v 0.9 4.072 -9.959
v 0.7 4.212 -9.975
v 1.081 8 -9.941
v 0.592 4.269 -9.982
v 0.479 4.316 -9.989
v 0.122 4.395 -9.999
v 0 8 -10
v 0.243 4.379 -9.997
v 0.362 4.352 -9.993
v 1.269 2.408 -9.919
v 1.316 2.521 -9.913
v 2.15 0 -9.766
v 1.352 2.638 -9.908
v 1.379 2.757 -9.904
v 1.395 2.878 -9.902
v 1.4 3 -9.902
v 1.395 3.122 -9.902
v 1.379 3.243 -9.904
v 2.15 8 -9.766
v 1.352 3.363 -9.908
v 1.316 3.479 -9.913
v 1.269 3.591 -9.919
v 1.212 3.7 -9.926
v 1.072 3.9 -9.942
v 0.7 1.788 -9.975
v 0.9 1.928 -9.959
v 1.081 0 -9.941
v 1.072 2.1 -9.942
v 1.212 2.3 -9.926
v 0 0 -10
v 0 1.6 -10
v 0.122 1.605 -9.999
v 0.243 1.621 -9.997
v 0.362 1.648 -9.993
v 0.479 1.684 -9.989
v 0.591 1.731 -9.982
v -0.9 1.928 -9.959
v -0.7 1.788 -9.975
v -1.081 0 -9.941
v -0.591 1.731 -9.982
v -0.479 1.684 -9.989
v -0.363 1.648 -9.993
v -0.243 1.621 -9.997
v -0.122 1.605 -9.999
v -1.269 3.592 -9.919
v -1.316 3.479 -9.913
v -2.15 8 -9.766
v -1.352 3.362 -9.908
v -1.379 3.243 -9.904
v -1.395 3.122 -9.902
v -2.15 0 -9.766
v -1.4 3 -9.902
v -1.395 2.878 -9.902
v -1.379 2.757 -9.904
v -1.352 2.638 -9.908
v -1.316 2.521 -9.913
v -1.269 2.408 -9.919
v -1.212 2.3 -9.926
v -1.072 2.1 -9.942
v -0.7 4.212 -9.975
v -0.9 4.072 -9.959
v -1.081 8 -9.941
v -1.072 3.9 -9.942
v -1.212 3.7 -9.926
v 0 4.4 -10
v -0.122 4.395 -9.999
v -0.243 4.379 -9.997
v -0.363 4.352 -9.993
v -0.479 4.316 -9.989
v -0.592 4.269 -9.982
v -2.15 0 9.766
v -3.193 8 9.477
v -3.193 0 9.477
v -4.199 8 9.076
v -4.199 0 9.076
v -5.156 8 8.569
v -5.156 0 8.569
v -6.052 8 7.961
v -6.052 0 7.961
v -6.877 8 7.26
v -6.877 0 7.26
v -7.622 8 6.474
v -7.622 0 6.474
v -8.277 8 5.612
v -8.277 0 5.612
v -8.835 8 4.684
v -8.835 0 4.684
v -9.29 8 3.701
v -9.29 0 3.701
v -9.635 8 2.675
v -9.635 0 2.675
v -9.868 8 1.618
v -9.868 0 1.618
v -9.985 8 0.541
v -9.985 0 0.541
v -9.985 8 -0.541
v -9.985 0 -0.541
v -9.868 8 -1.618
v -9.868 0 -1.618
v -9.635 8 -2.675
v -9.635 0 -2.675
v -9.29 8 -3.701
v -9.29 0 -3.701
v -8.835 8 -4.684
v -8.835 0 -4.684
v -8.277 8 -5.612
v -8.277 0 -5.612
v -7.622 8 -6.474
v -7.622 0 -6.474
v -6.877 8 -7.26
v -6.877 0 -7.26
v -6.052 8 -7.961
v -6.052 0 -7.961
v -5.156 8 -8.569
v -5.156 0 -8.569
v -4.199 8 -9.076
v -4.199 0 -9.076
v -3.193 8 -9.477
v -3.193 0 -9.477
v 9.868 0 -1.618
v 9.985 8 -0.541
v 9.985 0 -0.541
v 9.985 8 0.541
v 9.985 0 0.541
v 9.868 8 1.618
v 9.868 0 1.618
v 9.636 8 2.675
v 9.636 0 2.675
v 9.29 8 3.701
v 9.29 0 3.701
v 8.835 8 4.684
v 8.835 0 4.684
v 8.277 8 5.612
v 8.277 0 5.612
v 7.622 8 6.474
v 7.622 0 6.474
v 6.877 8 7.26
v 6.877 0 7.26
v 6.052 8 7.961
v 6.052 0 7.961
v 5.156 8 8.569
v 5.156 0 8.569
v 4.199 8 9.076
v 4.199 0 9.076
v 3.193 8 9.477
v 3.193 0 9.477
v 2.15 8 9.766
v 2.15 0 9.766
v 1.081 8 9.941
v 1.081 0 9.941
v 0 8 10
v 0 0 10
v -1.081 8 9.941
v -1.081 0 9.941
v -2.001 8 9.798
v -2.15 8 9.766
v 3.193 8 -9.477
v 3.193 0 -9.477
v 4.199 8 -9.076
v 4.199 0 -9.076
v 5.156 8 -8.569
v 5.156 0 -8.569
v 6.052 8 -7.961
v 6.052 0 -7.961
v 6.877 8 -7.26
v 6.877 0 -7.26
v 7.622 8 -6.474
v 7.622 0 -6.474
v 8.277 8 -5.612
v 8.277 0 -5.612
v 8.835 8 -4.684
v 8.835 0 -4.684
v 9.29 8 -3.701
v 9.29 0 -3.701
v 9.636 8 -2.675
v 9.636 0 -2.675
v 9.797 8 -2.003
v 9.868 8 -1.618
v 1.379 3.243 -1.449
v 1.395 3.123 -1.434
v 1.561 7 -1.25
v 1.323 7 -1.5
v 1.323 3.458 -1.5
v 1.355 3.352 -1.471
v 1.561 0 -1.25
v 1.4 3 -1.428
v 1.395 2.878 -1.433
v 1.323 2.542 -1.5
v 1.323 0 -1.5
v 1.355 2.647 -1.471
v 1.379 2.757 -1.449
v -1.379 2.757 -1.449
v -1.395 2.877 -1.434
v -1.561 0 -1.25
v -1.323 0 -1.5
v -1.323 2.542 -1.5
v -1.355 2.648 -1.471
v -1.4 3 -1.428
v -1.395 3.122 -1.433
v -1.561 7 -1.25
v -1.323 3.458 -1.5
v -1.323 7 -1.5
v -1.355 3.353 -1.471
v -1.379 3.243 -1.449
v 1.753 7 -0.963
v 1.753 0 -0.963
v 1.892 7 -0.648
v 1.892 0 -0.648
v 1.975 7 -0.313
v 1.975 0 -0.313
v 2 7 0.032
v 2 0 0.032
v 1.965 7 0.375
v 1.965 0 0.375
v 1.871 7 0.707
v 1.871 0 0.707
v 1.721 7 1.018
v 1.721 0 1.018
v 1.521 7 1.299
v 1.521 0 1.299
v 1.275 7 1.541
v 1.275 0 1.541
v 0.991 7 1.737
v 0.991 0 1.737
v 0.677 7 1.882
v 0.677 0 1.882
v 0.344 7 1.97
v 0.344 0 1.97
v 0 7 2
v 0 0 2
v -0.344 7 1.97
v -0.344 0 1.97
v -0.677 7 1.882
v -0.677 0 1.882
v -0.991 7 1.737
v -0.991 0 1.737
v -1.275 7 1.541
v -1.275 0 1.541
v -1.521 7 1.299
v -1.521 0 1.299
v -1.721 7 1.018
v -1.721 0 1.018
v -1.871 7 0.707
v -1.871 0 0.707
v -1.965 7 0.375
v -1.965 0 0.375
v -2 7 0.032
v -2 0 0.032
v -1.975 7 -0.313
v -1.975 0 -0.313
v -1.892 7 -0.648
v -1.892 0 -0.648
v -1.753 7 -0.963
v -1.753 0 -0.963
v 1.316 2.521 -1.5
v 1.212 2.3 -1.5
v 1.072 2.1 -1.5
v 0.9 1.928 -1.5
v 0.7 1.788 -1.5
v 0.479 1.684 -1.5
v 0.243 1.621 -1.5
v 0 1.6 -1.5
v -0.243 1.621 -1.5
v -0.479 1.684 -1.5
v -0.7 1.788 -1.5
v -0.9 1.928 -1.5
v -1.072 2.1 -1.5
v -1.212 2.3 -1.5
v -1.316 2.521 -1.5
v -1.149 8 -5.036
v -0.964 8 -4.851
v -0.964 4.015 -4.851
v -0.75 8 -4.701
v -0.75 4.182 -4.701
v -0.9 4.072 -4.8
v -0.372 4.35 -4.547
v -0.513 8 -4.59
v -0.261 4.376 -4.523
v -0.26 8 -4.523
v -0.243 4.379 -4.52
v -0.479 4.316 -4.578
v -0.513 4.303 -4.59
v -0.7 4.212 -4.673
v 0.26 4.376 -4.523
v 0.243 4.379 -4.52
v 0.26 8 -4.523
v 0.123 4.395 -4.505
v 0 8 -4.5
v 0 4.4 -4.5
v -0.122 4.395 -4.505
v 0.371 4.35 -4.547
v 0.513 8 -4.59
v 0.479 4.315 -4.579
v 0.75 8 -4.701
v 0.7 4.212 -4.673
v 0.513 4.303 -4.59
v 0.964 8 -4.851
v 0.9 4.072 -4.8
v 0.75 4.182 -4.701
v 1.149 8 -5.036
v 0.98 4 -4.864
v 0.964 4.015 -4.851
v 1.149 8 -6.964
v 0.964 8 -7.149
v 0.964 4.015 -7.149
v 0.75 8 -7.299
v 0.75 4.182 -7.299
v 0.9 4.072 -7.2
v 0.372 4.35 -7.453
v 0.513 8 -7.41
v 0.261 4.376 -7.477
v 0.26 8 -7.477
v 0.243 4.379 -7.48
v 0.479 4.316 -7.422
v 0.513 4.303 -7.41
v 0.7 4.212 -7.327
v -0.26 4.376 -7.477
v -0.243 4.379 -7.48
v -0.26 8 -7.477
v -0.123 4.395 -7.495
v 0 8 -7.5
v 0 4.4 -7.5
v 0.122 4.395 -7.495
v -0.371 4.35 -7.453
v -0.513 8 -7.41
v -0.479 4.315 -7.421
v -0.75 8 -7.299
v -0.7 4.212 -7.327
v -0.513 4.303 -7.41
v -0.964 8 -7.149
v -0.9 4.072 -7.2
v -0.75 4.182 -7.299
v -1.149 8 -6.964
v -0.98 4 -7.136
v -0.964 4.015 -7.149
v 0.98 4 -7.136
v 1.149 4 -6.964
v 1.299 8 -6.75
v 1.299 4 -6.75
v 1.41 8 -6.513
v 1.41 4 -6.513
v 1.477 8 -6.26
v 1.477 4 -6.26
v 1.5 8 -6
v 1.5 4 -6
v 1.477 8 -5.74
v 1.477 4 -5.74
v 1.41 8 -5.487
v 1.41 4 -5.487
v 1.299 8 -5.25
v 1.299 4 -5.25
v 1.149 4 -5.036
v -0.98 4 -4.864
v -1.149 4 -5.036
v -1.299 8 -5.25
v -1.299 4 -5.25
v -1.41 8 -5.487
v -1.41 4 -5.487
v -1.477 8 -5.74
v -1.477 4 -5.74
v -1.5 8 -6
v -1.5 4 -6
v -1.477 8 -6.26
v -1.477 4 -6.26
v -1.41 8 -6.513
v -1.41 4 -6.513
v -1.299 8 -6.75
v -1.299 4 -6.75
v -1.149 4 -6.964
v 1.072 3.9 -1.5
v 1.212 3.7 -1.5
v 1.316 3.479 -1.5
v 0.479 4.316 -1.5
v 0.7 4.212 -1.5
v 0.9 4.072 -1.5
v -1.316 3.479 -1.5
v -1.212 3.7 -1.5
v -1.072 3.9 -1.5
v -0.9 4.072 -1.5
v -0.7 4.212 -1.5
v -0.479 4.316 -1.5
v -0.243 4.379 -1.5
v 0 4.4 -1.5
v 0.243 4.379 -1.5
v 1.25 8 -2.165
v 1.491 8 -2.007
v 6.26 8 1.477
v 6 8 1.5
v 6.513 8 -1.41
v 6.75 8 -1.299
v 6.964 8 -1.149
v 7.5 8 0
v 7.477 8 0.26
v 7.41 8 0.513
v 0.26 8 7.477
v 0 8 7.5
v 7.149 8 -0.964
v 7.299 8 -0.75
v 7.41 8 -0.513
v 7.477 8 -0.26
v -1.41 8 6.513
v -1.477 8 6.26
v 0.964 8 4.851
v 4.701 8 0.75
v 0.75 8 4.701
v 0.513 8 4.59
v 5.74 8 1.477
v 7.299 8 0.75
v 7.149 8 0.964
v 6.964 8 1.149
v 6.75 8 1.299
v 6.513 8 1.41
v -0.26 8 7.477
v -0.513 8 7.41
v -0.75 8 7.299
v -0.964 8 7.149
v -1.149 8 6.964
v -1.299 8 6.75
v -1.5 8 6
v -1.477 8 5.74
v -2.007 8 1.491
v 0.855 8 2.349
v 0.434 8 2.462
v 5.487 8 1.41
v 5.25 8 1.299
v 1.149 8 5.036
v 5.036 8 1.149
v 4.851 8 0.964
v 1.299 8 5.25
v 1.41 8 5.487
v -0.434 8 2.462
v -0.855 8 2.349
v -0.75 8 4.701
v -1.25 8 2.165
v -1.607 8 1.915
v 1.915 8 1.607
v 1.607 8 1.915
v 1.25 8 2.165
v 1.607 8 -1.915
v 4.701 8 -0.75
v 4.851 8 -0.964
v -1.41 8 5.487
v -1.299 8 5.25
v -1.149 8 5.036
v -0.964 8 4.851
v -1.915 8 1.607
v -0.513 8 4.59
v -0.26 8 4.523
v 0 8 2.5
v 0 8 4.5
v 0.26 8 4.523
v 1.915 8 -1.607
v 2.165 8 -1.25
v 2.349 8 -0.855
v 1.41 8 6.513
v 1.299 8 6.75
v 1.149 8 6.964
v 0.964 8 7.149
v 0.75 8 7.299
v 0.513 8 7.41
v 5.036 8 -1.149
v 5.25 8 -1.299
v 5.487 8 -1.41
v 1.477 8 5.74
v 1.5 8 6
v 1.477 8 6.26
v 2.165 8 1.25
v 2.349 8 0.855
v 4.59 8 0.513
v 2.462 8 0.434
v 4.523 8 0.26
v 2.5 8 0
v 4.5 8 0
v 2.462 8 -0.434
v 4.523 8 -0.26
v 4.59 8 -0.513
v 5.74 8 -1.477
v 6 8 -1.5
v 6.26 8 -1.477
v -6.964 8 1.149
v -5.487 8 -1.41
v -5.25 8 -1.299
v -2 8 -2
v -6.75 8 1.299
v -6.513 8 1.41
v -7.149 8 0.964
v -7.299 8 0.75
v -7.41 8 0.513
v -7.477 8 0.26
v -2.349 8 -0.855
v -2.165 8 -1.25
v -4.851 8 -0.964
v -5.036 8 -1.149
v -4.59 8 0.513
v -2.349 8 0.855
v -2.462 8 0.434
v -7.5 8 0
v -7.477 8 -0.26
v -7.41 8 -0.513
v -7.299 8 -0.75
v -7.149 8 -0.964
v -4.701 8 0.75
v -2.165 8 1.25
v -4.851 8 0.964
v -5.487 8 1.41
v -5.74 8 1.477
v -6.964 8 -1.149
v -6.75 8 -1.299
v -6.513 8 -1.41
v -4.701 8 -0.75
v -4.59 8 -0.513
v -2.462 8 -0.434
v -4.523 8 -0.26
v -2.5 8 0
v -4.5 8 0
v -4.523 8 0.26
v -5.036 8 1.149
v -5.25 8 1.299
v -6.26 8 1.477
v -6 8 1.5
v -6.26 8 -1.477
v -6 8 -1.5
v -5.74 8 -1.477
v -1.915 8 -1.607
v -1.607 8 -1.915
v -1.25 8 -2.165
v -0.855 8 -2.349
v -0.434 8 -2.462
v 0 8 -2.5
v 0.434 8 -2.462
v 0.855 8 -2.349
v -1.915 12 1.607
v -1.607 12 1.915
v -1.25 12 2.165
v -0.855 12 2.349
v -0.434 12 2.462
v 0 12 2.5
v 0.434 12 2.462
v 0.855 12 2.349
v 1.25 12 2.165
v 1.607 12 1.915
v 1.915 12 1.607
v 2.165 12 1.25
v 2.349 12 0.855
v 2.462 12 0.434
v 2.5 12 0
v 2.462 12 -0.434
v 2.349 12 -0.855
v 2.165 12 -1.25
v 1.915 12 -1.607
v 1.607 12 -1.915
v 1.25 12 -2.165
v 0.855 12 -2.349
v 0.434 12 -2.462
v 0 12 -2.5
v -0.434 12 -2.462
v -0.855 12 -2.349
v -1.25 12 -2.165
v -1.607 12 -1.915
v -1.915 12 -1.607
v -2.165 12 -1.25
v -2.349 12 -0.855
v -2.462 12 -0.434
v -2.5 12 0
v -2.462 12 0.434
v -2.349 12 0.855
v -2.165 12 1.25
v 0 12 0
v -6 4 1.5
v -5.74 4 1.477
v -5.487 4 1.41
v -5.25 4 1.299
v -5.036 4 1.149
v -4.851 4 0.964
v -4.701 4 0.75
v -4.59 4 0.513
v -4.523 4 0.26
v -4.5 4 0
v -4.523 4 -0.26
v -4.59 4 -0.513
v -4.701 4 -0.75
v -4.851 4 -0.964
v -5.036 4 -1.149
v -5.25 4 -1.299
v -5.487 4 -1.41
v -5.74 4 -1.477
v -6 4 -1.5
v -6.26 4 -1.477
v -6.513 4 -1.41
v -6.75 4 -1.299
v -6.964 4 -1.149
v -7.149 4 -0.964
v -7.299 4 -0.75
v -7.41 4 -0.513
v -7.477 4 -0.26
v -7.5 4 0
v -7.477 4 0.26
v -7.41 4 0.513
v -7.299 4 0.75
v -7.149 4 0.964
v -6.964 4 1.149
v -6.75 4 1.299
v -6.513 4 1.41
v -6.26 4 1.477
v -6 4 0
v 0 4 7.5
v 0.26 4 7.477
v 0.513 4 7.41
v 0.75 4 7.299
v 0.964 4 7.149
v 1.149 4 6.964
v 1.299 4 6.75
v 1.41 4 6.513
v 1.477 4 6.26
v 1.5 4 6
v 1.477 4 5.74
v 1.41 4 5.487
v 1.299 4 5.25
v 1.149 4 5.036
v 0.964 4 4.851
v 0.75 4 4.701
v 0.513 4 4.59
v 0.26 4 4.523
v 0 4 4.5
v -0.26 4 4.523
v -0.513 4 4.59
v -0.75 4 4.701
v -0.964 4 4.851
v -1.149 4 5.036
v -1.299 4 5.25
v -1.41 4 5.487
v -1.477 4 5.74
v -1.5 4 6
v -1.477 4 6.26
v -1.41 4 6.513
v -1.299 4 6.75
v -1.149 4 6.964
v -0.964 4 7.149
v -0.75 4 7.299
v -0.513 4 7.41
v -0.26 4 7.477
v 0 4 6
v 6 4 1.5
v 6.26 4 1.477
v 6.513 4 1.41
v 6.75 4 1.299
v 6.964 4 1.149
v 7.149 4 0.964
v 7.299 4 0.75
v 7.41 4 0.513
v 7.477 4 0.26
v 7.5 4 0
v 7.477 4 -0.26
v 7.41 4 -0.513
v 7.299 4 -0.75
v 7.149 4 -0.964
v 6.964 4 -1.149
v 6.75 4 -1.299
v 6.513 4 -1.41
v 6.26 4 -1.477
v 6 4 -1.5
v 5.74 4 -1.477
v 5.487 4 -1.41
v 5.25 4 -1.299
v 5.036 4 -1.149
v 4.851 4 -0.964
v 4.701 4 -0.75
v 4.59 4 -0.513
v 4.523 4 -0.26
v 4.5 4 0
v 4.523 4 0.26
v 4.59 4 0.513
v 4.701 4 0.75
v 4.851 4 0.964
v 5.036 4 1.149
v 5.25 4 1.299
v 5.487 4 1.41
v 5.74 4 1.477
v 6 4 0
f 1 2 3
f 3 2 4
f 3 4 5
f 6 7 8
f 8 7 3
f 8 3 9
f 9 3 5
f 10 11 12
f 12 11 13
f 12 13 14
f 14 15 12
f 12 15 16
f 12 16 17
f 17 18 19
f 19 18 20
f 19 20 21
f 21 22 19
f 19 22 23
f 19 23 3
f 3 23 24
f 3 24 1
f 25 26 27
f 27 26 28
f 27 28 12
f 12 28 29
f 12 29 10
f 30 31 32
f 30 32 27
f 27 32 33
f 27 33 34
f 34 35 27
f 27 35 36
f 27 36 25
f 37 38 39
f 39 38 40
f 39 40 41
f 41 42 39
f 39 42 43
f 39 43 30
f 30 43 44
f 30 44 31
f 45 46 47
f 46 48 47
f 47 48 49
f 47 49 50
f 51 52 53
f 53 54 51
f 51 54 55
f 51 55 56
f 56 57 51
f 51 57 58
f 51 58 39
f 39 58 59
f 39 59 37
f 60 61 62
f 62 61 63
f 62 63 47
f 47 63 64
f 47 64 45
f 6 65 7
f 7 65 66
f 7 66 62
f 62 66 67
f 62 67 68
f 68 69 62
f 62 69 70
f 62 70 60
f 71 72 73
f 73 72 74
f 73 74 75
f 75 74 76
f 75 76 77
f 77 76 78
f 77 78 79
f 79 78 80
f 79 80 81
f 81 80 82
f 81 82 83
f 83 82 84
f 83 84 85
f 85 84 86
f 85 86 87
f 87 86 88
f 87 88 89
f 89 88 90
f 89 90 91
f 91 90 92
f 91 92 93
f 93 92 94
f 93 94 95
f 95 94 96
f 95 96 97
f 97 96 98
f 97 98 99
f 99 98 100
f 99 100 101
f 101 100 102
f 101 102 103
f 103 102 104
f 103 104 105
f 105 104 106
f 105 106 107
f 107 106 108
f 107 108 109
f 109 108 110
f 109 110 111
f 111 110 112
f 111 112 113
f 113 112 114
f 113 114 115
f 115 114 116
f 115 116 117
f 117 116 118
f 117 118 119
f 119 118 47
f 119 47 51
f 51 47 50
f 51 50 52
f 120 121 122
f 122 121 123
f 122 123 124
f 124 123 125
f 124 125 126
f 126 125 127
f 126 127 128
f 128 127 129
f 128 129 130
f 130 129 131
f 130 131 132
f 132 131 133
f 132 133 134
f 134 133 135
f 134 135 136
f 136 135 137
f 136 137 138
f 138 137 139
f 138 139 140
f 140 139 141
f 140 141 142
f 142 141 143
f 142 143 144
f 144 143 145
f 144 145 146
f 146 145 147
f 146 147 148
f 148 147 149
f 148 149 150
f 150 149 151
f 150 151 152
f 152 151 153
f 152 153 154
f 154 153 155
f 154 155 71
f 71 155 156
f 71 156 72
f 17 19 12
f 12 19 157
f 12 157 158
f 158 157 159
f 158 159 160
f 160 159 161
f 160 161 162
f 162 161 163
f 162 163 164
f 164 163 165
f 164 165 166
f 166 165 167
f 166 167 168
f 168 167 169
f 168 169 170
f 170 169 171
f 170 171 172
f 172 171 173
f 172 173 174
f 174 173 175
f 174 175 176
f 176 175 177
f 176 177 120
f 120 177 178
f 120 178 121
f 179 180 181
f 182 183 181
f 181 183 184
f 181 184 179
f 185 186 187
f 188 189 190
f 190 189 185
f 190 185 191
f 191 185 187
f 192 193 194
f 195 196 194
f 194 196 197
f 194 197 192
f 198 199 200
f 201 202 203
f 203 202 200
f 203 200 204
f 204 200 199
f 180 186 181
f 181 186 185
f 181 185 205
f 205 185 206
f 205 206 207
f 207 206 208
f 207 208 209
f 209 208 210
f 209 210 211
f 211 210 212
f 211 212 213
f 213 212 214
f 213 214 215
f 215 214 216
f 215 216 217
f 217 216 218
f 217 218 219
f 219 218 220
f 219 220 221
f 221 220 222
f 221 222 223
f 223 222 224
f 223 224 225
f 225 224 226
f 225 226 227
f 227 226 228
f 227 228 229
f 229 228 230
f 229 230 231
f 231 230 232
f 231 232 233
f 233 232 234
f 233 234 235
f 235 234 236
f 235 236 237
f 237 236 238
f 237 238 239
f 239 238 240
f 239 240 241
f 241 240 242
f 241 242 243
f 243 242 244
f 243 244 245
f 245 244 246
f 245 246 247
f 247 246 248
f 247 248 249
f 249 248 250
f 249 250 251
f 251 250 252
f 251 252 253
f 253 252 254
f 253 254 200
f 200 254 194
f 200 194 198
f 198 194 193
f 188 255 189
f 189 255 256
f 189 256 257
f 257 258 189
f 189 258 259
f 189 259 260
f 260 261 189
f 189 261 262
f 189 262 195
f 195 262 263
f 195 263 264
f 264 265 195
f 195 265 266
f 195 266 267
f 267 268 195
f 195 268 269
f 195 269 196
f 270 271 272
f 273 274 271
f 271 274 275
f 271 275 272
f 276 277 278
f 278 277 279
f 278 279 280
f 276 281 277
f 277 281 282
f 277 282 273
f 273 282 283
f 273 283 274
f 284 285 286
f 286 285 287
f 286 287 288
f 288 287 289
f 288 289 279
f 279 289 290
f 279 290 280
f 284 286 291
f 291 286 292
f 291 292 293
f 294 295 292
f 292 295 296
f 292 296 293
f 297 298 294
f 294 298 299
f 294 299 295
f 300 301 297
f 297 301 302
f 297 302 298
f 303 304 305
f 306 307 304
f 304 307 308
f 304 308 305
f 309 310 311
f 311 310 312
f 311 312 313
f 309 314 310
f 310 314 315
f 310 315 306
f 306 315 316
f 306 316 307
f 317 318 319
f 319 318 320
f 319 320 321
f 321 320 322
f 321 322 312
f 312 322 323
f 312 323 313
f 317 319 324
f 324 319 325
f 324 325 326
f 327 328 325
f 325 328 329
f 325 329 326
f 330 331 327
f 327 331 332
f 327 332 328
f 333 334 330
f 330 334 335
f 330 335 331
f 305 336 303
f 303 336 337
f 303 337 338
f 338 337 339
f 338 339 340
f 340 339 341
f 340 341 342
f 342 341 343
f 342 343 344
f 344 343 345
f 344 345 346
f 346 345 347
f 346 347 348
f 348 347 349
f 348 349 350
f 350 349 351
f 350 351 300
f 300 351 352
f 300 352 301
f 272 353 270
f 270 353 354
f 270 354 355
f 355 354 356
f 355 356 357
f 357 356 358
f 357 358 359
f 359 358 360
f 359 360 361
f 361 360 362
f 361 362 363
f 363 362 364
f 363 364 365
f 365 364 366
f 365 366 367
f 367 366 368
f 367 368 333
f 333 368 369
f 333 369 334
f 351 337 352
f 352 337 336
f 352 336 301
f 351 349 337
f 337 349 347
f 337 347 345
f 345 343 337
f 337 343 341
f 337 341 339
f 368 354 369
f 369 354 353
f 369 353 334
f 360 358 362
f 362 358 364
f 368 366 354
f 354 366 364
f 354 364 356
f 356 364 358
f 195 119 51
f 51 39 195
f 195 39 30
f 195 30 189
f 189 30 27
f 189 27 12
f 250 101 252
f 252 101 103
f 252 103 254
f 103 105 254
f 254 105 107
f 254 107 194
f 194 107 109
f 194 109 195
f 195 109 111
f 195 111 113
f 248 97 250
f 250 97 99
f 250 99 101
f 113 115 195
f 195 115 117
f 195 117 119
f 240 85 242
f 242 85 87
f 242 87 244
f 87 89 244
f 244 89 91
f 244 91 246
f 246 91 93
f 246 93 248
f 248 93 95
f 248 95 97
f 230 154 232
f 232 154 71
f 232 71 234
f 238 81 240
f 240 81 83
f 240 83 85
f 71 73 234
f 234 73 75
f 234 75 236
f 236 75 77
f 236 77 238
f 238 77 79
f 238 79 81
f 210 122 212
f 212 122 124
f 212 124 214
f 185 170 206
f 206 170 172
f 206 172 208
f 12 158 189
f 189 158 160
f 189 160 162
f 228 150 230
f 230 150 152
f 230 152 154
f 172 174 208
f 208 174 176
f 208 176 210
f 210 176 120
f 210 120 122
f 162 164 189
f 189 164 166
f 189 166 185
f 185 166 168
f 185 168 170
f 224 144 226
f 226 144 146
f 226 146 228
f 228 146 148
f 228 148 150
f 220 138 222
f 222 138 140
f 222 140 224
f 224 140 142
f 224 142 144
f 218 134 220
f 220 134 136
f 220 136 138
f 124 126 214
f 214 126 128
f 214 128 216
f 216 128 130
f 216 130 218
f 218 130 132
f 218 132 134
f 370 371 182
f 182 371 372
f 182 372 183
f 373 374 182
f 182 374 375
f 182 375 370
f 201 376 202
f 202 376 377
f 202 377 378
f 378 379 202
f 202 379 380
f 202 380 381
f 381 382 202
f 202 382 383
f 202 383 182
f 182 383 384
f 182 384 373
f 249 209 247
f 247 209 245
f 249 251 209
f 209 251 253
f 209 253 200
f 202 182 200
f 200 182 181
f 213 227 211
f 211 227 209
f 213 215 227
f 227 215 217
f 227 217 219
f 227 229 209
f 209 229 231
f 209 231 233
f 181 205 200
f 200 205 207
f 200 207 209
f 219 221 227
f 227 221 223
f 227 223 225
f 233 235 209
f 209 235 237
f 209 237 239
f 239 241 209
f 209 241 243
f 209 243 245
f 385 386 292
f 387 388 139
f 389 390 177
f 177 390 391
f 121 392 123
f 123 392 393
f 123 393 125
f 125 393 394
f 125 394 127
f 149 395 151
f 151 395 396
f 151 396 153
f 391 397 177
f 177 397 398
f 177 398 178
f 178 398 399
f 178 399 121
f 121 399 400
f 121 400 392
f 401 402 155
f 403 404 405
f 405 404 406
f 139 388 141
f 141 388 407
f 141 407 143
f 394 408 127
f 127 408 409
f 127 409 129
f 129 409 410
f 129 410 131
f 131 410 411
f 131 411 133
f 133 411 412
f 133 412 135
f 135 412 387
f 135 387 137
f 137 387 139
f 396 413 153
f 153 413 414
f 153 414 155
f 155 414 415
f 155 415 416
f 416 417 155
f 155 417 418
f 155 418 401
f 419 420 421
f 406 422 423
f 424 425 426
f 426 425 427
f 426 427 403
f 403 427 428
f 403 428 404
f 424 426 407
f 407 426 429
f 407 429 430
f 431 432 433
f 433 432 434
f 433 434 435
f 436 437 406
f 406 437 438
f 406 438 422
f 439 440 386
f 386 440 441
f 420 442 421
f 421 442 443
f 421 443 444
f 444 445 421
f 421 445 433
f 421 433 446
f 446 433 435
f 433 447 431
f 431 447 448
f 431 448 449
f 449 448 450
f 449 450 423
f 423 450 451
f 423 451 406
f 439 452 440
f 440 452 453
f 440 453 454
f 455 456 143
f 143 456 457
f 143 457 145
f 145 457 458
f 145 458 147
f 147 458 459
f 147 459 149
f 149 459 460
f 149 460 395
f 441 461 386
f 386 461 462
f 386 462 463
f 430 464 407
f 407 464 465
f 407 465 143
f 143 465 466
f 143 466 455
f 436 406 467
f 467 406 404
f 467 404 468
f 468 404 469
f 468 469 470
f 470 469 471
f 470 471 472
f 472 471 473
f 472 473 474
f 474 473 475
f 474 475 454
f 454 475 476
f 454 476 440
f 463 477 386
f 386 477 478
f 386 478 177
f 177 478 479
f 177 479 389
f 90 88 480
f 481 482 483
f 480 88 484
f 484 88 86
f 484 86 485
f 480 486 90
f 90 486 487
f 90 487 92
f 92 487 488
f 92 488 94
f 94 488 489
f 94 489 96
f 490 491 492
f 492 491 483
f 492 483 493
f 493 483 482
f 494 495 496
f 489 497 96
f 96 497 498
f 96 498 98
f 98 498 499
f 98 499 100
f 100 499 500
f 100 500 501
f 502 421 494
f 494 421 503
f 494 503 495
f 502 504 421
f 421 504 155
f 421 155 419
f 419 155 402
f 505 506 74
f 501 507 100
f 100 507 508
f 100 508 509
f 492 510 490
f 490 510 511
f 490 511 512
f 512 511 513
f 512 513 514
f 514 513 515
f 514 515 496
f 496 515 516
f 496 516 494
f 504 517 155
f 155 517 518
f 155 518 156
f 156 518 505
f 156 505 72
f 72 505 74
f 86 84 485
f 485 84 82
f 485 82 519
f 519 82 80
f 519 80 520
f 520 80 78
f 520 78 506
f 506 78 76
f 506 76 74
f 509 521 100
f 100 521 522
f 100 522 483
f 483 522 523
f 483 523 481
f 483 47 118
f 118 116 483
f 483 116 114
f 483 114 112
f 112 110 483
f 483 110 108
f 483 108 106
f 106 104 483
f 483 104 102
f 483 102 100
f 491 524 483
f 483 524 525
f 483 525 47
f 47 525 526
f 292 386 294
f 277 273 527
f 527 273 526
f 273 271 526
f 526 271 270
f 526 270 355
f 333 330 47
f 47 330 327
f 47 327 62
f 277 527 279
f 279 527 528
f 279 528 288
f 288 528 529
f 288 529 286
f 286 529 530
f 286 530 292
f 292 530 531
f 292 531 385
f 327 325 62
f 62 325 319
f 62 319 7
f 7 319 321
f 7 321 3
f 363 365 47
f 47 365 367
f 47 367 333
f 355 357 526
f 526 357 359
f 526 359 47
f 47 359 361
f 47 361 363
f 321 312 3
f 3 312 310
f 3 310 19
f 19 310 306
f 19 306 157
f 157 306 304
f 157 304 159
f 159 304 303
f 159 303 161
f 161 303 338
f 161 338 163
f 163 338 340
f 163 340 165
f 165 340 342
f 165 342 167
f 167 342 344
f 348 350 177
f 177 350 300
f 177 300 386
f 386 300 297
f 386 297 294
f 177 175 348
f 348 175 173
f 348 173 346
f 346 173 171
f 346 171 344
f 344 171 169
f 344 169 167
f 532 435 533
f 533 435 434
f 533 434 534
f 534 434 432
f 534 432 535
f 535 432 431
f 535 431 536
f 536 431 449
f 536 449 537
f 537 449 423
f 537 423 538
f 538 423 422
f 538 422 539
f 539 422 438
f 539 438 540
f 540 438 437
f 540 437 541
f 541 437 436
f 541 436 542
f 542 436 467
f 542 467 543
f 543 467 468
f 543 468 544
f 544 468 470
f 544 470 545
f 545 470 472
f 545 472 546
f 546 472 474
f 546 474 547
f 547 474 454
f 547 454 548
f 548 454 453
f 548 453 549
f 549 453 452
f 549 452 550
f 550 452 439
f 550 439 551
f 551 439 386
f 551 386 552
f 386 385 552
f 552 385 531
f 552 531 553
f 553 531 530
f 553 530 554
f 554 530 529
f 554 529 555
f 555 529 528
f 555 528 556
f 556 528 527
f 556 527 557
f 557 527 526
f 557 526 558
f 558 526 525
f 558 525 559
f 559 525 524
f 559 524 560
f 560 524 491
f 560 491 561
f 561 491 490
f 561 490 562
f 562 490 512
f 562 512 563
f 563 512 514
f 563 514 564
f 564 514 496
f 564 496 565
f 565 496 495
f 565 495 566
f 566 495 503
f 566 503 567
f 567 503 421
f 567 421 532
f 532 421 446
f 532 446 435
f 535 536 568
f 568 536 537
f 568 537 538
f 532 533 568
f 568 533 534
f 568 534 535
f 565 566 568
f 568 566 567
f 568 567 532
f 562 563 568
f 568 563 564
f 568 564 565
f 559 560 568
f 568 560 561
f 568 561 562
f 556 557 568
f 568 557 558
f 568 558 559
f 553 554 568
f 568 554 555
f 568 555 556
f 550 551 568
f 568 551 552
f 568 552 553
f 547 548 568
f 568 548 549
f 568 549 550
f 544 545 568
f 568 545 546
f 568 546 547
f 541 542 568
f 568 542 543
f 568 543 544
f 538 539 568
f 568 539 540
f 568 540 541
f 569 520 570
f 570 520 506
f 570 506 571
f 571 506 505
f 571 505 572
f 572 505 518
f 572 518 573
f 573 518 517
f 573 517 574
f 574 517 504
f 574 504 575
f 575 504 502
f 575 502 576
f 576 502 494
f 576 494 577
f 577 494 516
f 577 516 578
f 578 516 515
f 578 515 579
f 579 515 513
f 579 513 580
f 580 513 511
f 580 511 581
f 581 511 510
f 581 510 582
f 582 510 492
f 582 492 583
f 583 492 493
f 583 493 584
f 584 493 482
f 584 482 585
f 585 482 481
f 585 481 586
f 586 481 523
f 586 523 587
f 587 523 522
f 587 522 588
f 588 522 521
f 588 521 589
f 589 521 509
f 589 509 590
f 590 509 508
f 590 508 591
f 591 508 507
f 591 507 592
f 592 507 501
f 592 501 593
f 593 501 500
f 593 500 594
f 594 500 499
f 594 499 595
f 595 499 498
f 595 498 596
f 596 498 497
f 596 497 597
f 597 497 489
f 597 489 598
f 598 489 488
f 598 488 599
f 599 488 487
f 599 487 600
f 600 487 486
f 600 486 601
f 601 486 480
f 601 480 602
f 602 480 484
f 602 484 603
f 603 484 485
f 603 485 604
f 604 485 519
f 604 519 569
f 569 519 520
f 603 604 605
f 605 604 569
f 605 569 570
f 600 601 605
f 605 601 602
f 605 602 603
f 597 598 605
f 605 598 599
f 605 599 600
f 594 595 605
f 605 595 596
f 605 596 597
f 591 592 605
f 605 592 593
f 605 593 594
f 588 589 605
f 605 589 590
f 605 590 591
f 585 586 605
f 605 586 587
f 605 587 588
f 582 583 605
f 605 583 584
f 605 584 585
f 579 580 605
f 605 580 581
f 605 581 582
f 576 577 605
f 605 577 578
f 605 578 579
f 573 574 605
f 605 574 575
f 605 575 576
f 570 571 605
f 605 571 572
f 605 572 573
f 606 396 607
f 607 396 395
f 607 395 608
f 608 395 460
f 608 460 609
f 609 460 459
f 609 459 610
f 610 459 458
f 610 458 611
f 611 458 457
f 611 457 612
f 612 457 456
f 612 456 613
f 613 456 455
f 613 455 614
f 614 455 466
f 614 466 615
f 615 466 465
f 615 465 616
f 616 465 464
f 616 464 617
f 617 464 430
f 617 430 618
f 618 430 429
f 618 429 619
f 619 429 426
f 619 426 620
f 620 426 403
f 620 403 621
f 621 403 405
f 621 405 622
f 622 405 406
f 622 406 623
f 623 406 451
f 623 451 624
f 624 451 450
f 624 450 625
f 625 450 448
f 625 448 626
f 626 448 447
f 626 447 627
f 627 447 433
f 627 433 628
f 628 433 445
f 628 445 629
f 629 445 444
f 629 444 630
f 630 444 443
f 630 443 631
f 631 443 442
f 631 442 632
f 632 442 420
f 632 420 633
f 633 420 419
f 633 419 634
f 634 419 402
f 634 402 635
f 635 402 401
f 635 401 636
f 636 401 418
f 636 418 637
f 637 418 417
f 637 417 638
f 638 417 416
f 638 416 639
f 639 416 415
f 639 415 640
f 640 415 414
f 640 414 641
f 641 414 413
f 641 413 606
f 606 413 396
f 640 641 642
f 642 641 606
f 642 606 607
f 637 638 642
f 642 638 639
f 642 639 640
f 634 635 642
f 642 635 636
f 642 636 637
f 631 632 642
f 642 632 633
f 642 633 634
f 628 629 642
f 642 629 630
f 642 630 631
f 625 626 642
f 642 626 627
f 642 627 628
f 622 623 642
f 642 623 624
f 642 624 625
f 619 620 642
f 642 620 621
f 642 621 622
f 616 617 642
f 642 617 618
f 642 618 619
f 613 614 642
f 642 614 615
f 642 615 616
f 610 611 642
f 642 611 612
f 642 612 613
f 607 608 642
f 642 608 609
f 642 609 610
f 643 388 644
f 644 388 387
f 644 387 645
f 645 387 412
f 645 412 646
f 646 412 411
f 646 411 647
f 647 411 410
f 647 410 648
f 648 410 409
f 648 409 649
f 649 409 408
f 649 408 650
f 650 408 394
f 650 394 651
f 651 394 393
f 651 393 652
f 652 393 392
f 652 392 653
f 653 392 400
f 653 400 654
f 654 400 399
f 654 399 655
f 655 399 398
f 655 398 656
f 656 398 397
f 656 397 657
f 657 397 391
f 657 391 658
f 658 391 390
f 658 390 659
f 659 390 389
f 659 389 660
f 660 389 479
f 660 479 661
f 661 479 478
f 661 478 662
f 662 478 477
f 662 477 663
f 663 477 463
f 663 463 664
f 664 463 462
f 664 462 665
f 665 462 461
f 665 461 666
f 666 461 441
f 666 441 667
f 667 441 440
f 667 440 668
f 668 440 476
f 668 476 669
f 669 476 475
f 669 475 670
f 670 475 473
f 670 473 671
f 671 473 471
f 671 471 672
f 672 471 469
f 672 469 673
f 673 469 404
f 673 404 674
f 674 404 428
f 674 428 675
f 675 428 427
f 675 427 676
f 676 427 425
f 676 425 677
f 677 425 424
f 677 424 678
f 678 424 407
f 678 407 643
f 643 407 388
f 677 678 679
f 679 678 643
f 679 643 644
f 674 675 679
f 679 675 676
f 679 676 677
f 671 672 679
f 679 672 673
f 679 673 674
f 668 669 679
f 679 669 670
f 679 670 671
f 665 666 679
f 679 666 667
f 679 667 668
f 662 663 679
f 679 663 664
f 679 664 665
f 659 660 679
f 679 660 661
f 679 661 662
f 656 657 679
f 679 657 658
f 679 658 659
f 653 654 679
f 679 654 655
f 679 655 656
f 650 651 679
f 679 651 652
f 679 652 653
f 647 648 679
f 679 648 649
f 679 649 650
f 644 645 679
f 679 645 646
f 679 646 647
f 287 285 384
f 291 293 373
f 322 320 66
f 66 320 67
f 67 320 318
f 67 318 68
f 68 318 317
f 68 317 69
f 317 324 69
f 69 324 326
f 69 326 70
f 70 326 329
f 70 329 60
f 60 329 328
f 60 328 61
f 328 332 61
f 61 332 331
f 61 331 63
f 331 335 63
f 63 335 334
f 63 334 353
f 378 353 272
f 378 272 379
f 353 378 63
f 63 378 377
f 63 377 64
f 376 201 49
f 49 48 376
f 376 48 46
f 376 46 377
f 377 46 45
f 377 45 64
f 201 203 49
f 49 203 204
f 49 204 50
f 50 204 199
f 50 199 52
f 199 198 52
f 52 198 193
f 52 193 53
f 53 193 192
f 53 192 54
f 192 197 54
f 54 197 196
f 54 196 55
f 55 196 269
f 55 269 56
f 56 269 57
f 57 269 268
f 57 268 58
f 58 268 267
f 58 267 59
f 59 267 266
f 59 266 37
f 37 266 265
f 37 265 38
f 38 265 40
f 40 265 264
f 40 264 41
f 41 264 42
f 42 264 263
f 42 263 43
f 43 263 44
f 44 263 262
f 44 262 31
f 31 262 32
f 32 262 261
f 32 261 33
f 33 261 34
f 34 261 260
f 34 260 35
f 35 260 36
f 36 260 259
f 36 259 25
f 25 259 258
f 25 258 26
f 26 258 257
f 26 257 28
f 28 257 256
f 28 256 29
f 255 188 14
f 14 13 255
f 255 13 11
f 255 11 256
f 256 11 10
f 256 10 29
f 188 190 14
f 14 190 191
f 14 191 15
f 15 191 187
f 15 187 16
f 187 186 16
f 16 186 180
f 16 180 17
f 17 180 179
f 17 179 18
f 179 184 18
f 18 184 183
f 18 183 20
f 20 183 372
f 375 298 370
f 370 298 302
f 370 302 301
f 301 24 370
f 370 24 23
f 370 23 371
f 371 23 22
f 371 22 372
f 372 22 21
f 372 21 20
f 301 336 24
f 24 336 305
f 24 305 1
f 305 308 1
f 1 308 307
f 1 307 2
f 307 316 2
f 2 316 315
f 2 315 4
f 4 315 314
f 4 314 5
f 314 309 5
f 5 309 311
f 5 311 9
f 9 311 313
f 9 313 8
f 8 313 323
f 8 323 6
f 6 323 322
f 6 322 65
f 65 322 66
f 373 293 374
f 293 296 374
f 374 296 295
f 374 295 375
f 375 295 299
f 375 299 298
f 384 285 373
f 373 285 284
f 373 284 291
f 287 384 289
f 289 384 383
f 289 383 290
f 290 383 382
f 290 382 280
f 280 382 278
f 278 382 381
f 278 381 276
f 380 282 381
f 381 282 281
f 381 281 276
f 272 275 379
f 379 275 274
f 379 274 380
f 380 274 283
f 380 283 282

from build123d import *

# Parameters (mm, degrees)
SKETCH1_R               = 10
BOSS_EXTRUDE1_DEPTH     = 7
SKETCH2_R               = 10
BOSS_EXTRUDE2_DEPTH     = 1
SKETCH3_R               = 2.5
BOSS_EXTRUDE3_DEPTH     = 4
SKETCH4_R               = 1.5
CUT_EXTRUDE1_DEPTH      = 4
CUT_EXTRUDE2_DEPTH      = 2
CUT_EXTRUDE2_DEPTH_BACK = 20.397164741
SKETCH5_R               = 1.4


with BuildPart() as part:
    # Sketch1 → Boss-Extrude1 (new body)
    with BuildSketch(Plane(origin=(0, 0, 0), x_dir=(1, 0, 0), z_dir=(0, 1, 0))):
        Circle(SKETCH1_R)
        with BuildLine():
            Line((-1.322875656, 1.5), (1.322875656, 1.5))
            ThreePointArc((1.322875656, 1.5), (0, -2), (-1.322875656, 1.5))
        make_face(mode=Mode.SUBTRACT)
    extrude(amount=BOSS_EXTRUDE1_DEPTH)

    # Sketch2 → Boss-Extrude2 (add)
    with BuildSketch(Plane(origin=(0, 7, 0), x_dir=(1, 0, 0), z_dir=(0, 1, 0))):
        Circle(SKETCH2_R)
    extrude(amount=BOSS_EXTRUDE2_DEPTH)

    # Sketch3 → Boss-Extrude3 (add)
    with BuildSketch(Plane(origin=(0, 8, 0), x_dir=(1, 0, 0), z_dir=(0, 1, 0))):
        Circle(SKETCH3_R)
    extrude(amount=BOSS_EXTRUDE3_DEPTH)

    # Sketch4 → Cut-Extrude1 (cut)
    with BuildSketch(Plane(origin=(0, 8, 0), x_dir=(1, 0, 0), z_dir=(0, 1, 0))):
        with Locations((6, 0)):
            Circle(SKETCH4_R)
        with Locations((0, -6)):
            Circle(SKETCH4_R)
        with Locations((-6, 0)):
            Circle(SKETCH4_R)
        with Locations((0, 6)):
            Circle(SKETCH4_R)
    extrude(amount=-CUT_EXTRUDE1_DEPTH, mode=Mode.SUBTRACT)

    # Sketch5 → Cut-Extrude2 (cut, two sides: drawn at the far end of the back side and taken through both)
    with BuildSketch(Plane.XY.offset(-1.5).offset(-CUT_EXTRUDE2_DEPTH_BACK)):
        with Locations((0, 3)):
            Circle(SKETCH5_R)
    extrude(amount=CUT_EXTRUDE2_DEPTH + CUT_EXTRUDE2_DEPTH_BACK, mode=Mode.SUBTRACT)


solid = part.part
